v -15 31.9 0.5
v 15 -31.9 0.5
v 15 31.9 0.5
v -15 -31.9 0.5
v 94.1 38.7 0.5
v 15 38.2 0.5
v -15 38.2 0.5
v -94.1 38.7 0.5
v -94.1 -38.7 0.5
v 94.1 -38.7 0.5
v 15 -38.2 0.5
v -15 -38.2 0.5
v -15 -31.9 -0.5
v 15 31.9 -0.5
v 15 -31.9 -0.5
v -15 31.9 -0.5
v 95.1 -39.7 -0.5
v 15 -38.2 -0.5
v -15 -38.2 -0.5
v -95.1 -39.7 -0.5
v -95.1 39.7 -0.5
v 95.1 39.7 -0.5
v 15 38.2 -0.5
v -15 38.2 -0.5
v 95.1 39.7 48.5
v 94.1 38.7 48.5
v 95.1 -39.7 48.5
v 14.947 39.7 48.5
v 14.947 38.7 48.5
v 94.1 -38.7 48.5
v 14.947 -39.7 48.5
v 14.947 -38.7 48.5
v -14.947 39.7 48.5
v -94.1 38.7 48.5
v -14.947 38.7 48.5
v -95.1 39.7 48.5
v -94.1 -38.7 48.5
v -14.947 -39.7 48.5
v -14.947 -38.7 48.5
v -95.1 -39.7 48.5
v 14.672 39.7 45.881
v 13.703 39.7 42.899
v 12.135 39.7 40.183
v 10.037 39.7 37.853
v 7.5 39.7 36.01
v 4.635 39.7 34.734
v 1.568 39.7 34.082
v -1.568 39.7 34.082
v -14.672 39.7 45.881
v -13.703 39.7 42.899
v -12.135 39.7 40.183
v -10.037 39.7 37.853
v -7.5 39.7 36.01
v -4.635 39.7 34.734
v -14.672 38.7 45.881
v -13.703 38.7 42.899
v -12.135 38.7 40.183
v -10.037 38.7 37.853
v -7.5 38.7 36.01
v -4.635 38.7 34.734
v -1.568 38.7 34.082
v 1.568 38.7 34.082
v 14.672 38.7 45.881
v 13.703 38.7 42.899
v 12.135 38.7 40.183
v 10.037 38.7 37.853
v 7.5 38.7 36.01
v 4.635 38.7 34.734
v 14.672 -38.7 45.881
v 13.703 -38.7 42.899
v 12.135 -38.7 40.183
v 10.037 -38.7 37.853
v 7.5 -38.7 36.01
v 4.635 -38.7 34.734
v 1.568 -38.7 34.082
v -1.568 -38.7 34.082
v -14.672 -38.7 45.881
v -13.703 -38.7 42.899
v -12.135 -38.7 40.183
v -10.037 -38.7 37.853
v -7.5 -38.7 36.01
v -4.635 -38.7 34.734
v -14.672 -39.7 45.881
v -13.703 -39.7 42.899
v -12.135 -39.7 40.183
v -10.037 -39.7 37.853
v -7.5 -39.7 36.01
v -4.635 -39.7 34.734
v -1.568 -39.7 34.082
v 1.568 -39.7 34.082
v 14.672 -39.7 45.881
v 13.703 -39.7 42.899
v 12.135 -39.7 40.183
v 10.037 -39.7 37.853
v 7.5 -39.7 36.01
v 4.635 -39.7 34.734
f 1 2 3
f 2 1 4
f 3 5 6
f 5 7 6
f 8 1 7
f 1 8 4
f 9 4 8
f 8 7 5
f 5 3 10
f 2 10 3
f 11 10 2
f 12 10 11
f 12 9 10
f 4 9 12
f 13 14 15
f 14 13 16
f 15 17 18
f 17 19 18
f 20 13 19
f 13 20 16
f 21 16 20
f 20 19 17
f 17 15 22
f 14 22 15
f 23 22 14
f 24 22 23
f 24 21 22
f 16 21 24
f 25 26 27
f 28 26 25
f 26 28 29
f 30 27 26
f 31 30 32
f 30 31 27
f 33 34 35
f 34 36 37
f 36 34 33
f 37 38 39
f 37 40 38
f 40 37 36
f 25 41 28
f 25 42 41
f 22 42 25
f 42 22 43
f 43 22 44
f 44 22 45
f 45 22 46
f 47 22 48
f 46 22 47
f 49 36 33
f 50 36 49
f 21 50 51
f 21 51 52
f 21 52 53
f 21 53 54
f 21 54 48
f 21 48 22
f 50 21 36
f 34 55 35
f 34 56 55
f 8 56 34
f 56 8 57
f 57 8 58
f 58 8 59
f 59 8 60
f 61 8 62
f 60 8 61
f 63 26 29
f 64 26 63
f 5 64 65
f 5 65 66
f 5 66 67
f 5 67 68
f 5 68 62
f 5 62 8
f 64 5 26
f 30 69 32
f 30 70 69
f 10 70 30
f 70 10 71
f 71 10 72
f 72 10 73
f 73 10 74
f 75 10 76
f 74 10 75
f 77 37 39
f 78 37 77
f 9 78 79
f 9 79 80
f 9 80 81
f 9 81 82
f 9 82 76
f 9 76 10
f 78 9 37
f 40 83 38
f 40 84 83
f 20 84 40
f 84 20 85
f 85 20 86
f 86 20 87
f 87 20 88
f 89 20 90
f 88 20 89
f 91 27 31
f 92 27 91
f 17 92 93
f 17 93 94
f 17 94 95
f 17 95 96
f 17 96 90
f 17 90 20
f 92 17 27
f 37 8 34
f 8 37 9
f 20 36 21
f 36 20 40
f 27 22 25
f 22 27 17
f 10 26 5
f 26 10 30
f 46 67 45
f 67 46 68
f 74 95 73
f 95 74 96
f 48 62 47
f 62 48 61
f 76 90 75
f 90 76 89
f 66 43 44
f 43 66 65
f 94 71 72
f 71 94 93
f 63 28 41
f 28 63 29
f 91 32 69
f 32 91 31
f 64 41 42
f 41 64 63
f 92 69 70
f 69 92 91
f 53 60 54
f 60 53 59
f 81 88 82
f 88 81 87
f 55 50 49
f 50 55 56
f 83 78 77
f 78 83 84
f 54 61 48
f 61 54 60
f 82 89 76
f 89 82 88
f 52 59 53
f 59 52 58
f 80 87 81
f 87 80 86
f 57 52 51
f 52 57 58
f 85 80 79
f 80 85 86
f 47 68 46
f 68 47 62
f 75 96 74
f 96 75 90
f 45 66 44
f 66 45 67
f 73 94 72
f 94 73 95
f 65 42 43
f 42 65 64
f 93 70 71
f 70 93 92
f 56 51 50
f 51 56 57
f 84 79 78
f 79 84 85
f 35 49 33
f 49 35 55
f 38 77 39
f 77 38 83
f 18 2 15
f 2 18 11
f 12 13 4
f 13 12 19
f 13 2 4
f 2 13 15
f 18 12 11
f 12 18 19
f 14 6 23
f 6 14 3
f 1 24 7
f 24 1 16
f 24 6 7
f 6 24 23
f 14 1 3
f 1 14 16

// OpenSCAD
//
// index_top.scad
//

// unit is mm

len = 189.2; // length
dep = 78.4; // depth
hei = 49; // height

sle = 30; // slit length
swi = 6.3; // slit width

thi = 1; // thickness


difference() {

  union() {

    // base

    cube(size=[ len, dep, thi ], center=true);

    // walls

    translate([ 0, dep / 2, hei / 2 - thi / 2 ])
      cube(size=[ len, thi, hei ], center=true);
    translate([ 0, -dep / 2, hei / 2 - thi / 2 ])
      cube(size=[ len, thi, hei ], center=true);

    translate([ -len / 2, 0, hei / 2 - thi / 2 ])
      cube(size=[ thi, dep + thi, hei ], center=true);
    translate([ len / 2, 0, hei / 2 - thi / 2 ])
      cube(size=[ thi, dep + thi, hei ], center=true);
  }

  // arches

  translate([ 0, dep, hei ])
    rotate([ 90, 0, 0 ]) cylinder(d=sle, h=dep * 2);

  // slits

  translate([ 0, -dep / 2 + swi / 2 + thi, 0 ])
    cube(size=[ sle, swi, sle ], center=true);
  translate([ 0, dep / 2 - swi / 2 - thi, 0 ])
    cube(size=[ sle, swi, sle ], center=true);
}
